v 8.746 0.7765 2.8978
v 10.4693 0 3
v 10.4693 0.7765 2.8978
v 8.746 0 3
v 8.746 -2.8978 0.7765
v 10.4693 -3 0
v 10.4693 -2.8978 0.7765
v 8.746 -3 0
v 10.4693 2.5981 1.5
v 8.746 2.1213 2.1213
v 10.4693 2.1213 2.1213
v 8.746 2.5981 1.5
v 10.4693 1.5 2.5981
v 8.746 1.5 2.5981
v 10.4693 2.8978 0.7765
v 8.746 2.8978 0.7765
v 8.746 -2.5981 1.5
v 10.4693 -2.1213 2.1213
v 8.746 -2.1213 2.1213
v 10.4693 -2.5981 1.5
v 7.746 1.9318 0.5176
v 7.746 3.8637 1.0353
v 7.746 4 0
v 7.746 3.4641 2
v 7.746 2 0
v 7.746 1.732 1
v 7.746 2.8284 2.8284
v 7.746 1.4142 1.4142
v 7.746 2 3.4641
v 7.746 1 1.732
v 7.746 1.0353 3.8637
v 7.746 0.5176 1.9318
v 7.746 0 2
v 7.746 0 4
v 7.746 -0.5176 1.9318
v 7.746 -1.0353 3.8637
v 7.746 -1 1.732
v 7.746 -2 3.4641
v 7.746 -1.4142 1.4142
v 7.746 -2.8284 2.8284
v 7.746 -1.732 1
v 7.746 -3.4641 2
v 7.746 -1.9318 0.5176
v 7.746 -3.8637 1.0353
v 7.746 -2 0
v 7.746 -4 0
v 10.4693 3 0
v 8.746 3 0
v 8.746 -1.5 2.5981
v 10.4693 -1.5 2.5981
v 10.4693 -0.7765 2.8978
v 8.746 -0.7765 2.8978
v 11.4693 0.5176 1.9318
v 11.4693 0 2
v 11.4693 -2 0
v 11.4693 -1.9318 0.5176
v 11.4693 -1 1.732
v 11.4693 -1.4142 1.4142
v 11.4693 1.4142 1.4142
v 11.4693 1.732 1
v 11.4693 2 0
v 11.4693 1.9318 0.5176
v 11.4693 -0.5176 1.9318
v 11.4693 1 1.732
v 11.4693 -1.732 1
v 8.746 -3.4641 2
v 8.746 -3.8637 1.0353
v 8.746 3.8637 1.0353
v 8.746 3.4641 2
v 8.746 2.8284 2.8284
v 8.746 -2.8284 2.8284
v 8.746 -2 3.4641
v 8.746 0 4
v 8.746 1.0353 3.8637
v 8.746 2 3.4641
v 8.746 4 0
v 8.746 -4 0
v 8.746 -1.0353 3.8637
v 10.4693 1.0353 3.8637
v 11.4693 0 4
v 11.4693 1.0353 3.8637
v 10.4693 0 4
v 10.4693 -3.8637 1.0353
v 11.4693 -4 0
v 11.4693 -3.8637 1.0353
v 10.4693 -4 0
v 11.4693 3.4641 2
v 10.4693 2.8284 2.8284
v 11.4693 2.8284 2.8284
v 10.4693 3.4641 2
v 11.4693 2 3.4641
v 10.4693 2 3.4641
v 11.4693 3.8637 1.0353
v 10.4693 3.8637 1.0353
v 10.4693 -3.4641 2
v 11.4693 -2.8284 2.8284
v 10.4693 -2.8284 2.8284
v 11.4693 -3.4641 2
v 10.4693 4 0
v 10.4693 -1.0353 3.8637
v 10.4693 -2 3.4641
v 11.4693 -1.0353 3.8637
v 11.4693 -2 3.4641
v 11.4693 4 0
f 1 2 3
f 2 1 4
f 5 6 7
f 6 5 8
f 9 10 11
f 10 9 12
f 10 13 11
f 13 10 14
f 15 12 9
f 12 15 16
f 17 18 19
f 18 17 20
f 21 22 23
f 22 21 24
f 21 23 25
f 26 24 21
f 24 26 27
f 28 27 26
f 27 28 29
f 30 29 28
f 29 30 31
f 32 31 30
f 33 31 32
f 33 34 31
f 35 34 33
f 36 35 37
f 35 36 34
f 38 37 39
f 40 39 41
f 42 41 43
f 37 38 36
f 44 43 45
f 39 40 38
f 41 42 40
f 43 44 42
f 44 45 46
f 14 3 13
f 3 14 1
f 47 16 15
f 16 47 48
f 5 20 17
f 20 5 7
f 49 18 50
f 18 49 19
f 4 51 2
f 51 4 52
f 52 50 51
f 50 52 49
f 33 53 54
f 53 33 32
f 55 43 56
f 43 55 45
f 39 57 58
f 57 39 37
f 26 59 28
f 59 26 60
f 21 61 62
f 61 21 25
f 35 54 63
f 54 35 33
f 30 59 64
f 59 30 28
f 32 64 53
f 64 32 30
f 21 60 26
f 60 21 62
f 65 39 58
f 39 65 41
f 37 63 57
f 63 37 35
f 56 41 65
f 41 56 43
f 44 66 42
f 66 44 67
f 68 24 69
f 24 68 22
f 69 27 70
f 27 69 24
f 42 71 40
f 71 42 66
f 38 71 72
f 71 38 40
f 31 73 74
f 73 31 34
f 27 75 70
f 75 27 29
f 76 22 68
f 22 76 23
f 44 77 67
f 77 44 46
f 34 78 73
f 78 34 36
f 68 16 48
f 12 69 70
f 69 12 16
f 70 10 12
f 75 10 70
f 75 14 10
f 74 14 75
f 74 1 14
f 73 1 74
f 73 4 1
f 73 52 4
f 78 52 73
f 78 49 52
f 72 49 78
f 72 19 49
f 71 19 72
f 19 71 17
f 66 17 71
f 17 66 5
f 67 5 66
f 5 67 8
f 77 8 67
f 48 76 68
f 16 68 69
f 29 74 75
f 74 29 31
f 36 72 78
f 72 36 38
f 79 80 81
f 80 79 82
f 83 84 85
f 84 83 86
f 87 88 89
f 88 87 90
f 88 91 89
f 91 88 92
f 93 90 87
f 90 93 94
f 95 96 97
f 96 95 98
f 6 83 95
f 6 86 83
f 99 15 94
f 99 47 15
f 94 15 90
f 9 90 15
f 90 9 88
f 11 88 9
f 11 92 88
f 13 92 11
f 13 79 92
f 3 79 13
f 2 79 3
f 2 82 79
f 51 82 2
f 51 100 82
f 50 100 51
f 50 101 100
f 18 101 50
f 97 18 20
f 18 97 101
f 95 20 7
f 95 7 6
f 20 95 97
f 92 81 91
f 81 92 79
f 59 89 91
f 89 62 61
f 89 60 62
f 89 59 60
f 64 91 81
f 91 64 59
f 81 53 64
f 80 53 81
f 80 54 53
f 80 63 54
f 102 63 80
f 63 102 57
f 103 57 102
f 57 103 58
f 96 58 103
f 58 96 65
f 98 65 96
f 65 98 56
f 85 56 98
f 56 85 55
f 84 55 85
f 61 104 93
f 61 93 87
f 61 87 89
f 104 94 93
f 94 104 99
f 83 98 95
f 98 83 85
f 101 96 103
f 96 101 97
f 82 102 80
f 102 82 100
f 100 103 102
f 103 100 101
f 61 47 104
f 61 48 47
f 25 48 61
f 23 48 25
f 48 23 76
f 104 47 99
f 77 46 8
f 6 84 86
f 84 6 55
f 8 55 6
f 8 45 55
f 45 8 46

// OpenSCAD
// file: ../build_environments.scad
// build_environments.scad: modules to build level sections
//

module pool(diameter=10.0, wall_height=2.0, step_width=3.0, connections=[])
{
    difference() {
        union() {
        difference() {
            cylinder(h=0.5,r1=diameter+step_width,r2=diameter+step_width,$fn=48);
            translate([0,0,-0.1])
                cylinder(h=0.7,r1=diameter,r2=diameter,$fn=48);
        }
        difference() {
            cylinder(h=wall_height,r1=diameter+step_width+1.0,r2=diameter+step_width+1.0,$fn=48);
            translate([0,0,-0.1])
                cylinder(h=wall_height+0.2,r1=diameter+step_width,r2=diameter+step_width,$fn=48);
        }
        }
    
        for (c = connections)
        {
            rotate([0,90,0]) {
                angle = atan2(c[1],c[0]);
                rotate([-angle,0,0]) {
                    cylinder(h=diameter+5.0,r1=c[2],r2=c[2],$fn=48);
                }
            }
        }
    }
}

module straight(length=10.0, width=2.0, dy1=0.0, dy2=0.0, dz=0.0)
{
    dims = [0, 0, 0, 0, 0, (dz/length)];
    matrix = [
        [ 1, dims[0], dims[1], 0 ],
        [ dims[2], 1, dims[4], 0 ],
        [ dims[5], dims[3], 1, 0 ],
        [ 0, 0, 0, 1 ]
    ];
    multmatrix(matrix)
    difference() {
        translate([dy1,0,0])
        union() {
            rotate([0,90,0]) {
                difference() {
                    cylinder(h=(length-dy1-dy2),r1=width+1.0,r2=width+1.0,$fn=24);
                    translate([0,0,-0.1])
                        cylinder(h=(length-dy1-dy2+0.2),r1=width,r2=width,$fn=24);
                }
                difference() {
                    cylinder(h=1.0,r1=width+2.0,r2=width+2.0,$fn=24);
                    translate([0,0,-0.1])
                        cylinder(h=1.2,r1=width,r2=width,$fn=24);
                }
                translate([0,0,(length-dy1-dy2)-1.0]) {
                    difference() {
                        cylinder(h=1.0,r1=width+2.0,r2=width+2.0,$fn=24);
                        translate([0,0,-0.1])
                            cylinder(h=1.2,r1=width,r2=width,$fn=24);
                    }
                }
            }
        }
        translate([0,0,-(2*width+4.0)/2])
            cube([3*length,3*length,2*width+4.0],center=true);
    }
}

module curve(p0=[0,0], center=[0,0], dir=1, angle=0.0, width=2.0)
{
    radius = sqrt((p0[0]-center[0])*(p0[0]-center[0]) + (p0[1]-center[1])*(p0[1]-center[1]));
    if (dir == 0) {
        difference() {
            rotate([0,0,-90])
            difference() {
                rotate_extrude(angle = angle, convexity = 10, $fn=32)
                    translate([radius, 0, 0])
                        circle(r = width+1.0,$fn=24);
                rotate([0,0,-1.0])
                    rotate_extrude(angle = angle+2.0, convexity = 10, $fn=32)
                        translate([radius, 0, 0])
                            circle(r = width,$fn=24);
            }
            translate([0,0,-(2*width+4.0)/2])
                cube([5*radius,5*radius,2*width+4.0],center=true);
        }
    }
    else {
        difference() {
            rotate([0,0,90])
            difference() {
                rotate_extrude(angle = -angle, convexity = 10, $fn=32)
                    translate([radius, 0, 0])
                        circle(r = width+1.0,$fn=24);
                rotate([0,0,1.0])
                    rotate_extrude(angle = -angle-2.0, convexity = 10, $fn=32)
                        translate([radius, 0, 0])
                            circle(r = width,$fn=24);
            }
            translate([0,0,-(2*width+4.0)/2])
                cube([5*radius,5*radius,2*width+4.0],center=true);
        }
    }

}

// test pool
//pool(diameter=12.0000, wall_height=3.0000, step_width=3.0000, connections=[[0.0000,-26.0000,2.0000], [23.6074,0.0000,2.0000]]);

// test straight, slope
//straight(length=26.0000, width=2.0000, dy1=11.8322, dy2=6.7082, dz=0.0000);
//straight(length=29.1549, width=12.0000, dy1=0.0000, dy2=0.0000, dz=-15.0000);

// test curve
//curve(p0=[23.6074, 0.0000], center=[23.6074, 5.0000], dir=0, angle=60.1011, width=2.0000);
//curve(p0=[33.6426, 12.4219], center=[37.9771, 9.9295], dir=1, angle=120.4627, width=2.0000);
// main file
use <../build_environments.scad>;
straight(length=11.4693, width=2.0000, dy1=7.7460, dy2=0.0000, dz=0.0000);
